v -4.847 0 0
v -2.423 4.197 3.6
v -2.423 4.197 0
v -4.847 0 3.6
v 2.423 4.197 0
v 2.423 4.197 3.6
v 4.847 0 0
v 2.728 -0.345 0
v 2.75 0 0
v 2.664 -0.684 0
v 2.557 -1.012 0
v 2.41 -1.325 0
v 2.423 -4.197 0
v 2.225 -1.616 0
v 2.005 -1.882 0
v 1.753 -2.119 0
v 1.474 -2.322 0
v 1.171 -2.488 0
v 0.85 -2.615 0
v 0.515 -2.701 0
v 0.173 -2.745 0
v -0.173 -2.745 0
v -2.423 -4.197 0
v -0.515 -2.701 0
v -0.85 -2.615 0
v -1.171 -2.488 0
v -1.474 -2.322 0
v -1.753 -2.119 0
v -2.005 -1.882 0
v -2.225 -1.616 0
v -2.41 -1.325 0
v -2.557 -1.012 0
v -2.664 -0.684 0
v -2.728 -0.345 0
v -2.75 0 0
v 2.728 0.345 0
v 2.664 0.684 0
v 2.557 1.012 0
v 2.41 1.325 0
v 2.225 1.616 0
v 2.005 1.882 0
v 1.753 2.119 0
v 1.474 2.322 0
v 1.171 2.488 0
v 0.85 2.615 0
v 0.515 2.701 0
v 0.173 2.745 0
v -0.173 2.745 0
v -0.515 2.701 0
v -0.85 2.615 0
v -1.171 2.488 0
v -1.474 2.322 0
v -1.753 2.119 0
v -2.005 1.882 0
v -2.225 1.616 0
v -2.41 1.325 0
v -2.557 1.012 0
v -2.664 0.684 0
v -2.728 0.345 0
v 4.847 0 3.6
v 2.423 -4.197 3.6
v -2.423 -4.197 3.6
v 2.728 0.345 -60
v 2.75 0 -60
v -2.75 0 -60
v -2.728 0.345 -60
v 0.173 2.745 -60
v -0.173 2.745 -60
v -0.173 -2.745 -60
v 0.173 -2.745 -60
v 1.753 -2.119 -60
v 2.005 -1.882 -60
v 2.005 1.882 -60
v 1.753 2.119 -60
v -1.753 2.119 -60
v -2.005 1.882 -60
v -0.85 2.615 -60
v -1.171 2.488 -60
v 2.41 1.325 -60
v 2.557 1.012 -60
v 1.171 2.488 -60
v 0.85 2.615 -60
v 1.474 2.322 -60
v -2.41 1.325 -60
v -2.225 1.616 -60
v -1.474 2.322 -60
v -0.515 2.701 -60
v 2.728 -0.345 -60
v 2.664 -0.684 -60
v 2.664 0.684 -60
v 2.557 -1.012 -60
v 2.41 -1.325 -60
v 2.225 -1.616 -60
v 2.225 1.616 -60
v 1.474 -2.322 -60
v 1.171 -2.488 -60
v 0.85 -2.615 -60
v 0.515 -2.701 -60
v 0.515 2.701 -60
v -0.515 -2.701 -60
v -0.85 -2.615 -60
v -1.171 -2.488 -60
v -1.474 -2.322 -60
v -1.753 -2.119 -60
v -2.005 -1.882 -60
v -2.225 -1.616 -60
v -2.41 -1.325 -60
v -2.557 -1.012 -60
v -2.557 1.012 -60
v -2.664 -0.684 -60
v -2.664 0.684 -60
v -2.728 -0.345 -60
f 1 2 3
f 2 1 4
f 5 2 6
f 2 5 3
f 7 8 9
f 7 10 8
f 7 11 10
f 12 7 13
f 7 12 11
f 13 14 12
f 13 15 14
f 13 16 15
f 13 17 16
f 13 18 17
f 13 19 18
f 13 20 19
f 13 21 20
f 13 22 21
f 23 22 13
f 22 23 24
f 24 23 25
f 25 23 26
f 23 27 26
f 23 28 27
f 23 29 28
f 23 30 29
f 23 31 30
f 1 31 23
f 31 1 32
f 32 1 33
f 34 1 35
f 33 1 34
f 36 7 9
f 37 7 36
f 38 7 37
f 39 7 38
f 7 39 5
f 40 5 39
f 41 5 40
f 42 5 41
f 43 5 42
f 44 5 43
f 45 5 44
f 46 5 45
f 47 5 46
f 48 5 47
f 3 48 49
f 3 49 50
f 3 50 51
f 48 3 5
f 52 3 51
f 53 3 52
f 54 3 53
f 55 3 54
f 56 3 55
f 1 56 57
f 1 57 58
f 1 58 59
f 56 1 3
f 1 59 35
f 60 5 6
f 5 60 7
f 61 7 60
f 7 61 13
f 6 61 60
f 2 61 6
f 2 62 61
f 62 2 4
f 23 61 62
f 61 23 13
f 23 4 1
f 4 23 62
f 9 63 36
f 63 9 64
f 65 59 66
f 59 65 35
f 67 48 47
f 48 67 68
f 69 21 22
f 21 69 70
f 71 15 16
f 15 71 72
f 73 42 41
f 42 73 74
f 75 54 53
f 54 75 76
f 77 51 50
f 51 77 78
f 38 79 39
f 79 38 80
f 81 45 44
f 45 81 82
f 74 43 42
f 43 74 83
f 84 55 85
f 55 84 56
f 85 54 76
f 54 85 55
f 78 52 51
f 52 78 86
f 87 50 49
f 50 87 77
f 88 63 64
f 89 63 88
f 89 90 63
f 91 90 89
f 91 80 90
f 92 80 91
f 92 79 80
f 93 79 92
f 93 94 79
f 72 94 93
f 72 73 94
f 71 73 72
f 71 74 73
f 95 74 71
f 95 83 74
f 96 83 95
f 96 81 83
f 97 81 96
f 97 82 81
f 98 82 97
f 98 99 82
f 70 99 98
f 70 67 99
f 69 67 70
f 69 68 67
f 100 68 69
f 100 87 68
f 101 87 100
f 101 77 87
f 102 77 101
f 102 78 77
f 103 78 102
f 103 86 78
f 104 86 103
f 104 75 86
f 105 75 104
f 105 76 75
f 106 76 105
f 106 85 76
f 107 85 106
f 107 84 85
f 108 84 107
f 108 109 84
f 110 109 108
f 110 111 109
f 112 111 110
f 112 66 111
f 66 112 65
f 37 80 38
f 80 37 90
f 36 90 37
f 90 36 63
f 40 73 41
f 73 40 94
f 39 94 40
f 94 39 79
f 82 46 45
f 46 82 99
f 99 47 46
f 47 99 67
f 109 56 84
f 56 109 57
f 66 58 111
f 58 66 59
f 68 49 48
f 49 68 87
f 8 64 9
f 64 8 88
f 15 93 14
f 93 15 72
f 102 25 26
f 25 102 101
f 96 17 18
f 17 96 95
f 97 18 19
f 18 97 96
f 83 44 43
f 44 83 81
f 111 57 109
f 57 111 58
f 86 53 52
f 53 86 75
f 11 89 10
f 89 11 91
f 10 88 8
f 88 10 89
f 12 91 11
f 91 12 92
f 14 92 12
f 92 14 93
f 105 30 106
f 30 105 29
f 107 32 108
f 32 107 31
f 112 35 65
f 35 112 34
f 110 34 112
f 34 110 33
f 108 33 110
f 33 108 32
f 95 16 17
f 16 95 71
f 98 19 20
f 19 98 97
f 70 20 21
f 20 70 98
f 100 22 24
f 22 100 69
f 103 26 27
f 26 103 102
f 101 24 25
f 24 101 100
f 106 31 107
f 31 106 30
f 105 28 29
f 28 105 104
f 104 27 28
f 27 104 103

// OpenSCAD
$fn = 50;


difference() {
	union() {
		translate(v = [0, 0, 0]) {
			rotate(a = [0, 0, 0]) {
				translate(v = [0, 0, 0]) {
					rotate(a = [0, 0, 0]) {
						linear_extrude(height = 3.6000000000) {
							polygon(points = [[4.8468000000, 0.0000000000], [2.4234000000, 4.1974519271], [-2.4234000000, 4.1974519271], [-4.8468000000, 0.0000000000], [-2.4234000000, -4.1974519271], [2.4234000000, -4.1974519271]]);
						}
					}
				}
			}
		}
		translate(v = [0, 0, -60]) {
			rotate(a = [0, 0, 0]) {
				cylinder(h = 60, r = 2.7500000000);
			}
		}
	}
	union();
}
